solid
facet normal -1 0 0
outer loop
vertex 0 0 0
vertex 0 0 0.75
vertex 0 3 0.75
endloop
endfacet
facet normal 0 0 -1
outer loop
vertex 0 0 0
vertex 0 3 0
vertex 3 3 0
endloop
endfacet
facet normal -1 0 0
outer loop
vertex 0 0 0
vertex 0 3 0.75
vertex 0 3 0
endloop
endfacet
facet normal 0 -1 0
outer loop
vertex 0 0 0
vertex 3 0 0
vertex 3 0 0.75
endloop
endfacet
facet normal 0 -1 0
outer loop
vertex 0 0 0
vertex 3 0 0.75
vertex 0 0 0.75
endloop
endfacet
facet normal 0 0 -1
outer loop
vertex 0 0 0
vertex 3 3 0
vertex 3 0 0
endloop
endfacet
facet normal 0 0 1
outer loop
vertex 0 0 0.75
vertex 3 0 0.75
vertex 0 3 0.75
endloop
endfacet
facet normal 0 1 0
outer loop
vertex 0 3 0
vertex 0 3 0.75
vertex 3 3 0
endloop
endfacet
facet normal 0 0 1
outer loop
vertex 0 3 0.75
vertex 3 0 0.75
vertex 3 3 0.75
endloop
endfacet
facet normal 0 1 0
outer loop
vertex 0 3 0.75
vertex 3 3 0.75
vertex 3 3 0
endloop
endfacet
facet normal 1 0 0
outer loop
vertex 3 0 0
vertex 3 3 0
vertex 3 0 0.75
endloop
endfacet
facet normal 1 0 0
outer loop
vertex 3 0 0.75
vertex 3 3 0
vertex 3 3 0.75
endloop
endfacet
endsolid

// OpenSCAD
/* Warning, this is a very basic generator with a lot of approximation 
input data : [WQFN, 4FW, 3x3x0.75mm, 20, , A, C04-00585A]
generated by com.zoubworld.electronics.cad.model3d.Basic
Date : Sun Feb 15 10:50:49 CET 2026
*/

//body
color("black")
translate([0,0,0])
cube([3.0,3.0,0.75], center=false);
